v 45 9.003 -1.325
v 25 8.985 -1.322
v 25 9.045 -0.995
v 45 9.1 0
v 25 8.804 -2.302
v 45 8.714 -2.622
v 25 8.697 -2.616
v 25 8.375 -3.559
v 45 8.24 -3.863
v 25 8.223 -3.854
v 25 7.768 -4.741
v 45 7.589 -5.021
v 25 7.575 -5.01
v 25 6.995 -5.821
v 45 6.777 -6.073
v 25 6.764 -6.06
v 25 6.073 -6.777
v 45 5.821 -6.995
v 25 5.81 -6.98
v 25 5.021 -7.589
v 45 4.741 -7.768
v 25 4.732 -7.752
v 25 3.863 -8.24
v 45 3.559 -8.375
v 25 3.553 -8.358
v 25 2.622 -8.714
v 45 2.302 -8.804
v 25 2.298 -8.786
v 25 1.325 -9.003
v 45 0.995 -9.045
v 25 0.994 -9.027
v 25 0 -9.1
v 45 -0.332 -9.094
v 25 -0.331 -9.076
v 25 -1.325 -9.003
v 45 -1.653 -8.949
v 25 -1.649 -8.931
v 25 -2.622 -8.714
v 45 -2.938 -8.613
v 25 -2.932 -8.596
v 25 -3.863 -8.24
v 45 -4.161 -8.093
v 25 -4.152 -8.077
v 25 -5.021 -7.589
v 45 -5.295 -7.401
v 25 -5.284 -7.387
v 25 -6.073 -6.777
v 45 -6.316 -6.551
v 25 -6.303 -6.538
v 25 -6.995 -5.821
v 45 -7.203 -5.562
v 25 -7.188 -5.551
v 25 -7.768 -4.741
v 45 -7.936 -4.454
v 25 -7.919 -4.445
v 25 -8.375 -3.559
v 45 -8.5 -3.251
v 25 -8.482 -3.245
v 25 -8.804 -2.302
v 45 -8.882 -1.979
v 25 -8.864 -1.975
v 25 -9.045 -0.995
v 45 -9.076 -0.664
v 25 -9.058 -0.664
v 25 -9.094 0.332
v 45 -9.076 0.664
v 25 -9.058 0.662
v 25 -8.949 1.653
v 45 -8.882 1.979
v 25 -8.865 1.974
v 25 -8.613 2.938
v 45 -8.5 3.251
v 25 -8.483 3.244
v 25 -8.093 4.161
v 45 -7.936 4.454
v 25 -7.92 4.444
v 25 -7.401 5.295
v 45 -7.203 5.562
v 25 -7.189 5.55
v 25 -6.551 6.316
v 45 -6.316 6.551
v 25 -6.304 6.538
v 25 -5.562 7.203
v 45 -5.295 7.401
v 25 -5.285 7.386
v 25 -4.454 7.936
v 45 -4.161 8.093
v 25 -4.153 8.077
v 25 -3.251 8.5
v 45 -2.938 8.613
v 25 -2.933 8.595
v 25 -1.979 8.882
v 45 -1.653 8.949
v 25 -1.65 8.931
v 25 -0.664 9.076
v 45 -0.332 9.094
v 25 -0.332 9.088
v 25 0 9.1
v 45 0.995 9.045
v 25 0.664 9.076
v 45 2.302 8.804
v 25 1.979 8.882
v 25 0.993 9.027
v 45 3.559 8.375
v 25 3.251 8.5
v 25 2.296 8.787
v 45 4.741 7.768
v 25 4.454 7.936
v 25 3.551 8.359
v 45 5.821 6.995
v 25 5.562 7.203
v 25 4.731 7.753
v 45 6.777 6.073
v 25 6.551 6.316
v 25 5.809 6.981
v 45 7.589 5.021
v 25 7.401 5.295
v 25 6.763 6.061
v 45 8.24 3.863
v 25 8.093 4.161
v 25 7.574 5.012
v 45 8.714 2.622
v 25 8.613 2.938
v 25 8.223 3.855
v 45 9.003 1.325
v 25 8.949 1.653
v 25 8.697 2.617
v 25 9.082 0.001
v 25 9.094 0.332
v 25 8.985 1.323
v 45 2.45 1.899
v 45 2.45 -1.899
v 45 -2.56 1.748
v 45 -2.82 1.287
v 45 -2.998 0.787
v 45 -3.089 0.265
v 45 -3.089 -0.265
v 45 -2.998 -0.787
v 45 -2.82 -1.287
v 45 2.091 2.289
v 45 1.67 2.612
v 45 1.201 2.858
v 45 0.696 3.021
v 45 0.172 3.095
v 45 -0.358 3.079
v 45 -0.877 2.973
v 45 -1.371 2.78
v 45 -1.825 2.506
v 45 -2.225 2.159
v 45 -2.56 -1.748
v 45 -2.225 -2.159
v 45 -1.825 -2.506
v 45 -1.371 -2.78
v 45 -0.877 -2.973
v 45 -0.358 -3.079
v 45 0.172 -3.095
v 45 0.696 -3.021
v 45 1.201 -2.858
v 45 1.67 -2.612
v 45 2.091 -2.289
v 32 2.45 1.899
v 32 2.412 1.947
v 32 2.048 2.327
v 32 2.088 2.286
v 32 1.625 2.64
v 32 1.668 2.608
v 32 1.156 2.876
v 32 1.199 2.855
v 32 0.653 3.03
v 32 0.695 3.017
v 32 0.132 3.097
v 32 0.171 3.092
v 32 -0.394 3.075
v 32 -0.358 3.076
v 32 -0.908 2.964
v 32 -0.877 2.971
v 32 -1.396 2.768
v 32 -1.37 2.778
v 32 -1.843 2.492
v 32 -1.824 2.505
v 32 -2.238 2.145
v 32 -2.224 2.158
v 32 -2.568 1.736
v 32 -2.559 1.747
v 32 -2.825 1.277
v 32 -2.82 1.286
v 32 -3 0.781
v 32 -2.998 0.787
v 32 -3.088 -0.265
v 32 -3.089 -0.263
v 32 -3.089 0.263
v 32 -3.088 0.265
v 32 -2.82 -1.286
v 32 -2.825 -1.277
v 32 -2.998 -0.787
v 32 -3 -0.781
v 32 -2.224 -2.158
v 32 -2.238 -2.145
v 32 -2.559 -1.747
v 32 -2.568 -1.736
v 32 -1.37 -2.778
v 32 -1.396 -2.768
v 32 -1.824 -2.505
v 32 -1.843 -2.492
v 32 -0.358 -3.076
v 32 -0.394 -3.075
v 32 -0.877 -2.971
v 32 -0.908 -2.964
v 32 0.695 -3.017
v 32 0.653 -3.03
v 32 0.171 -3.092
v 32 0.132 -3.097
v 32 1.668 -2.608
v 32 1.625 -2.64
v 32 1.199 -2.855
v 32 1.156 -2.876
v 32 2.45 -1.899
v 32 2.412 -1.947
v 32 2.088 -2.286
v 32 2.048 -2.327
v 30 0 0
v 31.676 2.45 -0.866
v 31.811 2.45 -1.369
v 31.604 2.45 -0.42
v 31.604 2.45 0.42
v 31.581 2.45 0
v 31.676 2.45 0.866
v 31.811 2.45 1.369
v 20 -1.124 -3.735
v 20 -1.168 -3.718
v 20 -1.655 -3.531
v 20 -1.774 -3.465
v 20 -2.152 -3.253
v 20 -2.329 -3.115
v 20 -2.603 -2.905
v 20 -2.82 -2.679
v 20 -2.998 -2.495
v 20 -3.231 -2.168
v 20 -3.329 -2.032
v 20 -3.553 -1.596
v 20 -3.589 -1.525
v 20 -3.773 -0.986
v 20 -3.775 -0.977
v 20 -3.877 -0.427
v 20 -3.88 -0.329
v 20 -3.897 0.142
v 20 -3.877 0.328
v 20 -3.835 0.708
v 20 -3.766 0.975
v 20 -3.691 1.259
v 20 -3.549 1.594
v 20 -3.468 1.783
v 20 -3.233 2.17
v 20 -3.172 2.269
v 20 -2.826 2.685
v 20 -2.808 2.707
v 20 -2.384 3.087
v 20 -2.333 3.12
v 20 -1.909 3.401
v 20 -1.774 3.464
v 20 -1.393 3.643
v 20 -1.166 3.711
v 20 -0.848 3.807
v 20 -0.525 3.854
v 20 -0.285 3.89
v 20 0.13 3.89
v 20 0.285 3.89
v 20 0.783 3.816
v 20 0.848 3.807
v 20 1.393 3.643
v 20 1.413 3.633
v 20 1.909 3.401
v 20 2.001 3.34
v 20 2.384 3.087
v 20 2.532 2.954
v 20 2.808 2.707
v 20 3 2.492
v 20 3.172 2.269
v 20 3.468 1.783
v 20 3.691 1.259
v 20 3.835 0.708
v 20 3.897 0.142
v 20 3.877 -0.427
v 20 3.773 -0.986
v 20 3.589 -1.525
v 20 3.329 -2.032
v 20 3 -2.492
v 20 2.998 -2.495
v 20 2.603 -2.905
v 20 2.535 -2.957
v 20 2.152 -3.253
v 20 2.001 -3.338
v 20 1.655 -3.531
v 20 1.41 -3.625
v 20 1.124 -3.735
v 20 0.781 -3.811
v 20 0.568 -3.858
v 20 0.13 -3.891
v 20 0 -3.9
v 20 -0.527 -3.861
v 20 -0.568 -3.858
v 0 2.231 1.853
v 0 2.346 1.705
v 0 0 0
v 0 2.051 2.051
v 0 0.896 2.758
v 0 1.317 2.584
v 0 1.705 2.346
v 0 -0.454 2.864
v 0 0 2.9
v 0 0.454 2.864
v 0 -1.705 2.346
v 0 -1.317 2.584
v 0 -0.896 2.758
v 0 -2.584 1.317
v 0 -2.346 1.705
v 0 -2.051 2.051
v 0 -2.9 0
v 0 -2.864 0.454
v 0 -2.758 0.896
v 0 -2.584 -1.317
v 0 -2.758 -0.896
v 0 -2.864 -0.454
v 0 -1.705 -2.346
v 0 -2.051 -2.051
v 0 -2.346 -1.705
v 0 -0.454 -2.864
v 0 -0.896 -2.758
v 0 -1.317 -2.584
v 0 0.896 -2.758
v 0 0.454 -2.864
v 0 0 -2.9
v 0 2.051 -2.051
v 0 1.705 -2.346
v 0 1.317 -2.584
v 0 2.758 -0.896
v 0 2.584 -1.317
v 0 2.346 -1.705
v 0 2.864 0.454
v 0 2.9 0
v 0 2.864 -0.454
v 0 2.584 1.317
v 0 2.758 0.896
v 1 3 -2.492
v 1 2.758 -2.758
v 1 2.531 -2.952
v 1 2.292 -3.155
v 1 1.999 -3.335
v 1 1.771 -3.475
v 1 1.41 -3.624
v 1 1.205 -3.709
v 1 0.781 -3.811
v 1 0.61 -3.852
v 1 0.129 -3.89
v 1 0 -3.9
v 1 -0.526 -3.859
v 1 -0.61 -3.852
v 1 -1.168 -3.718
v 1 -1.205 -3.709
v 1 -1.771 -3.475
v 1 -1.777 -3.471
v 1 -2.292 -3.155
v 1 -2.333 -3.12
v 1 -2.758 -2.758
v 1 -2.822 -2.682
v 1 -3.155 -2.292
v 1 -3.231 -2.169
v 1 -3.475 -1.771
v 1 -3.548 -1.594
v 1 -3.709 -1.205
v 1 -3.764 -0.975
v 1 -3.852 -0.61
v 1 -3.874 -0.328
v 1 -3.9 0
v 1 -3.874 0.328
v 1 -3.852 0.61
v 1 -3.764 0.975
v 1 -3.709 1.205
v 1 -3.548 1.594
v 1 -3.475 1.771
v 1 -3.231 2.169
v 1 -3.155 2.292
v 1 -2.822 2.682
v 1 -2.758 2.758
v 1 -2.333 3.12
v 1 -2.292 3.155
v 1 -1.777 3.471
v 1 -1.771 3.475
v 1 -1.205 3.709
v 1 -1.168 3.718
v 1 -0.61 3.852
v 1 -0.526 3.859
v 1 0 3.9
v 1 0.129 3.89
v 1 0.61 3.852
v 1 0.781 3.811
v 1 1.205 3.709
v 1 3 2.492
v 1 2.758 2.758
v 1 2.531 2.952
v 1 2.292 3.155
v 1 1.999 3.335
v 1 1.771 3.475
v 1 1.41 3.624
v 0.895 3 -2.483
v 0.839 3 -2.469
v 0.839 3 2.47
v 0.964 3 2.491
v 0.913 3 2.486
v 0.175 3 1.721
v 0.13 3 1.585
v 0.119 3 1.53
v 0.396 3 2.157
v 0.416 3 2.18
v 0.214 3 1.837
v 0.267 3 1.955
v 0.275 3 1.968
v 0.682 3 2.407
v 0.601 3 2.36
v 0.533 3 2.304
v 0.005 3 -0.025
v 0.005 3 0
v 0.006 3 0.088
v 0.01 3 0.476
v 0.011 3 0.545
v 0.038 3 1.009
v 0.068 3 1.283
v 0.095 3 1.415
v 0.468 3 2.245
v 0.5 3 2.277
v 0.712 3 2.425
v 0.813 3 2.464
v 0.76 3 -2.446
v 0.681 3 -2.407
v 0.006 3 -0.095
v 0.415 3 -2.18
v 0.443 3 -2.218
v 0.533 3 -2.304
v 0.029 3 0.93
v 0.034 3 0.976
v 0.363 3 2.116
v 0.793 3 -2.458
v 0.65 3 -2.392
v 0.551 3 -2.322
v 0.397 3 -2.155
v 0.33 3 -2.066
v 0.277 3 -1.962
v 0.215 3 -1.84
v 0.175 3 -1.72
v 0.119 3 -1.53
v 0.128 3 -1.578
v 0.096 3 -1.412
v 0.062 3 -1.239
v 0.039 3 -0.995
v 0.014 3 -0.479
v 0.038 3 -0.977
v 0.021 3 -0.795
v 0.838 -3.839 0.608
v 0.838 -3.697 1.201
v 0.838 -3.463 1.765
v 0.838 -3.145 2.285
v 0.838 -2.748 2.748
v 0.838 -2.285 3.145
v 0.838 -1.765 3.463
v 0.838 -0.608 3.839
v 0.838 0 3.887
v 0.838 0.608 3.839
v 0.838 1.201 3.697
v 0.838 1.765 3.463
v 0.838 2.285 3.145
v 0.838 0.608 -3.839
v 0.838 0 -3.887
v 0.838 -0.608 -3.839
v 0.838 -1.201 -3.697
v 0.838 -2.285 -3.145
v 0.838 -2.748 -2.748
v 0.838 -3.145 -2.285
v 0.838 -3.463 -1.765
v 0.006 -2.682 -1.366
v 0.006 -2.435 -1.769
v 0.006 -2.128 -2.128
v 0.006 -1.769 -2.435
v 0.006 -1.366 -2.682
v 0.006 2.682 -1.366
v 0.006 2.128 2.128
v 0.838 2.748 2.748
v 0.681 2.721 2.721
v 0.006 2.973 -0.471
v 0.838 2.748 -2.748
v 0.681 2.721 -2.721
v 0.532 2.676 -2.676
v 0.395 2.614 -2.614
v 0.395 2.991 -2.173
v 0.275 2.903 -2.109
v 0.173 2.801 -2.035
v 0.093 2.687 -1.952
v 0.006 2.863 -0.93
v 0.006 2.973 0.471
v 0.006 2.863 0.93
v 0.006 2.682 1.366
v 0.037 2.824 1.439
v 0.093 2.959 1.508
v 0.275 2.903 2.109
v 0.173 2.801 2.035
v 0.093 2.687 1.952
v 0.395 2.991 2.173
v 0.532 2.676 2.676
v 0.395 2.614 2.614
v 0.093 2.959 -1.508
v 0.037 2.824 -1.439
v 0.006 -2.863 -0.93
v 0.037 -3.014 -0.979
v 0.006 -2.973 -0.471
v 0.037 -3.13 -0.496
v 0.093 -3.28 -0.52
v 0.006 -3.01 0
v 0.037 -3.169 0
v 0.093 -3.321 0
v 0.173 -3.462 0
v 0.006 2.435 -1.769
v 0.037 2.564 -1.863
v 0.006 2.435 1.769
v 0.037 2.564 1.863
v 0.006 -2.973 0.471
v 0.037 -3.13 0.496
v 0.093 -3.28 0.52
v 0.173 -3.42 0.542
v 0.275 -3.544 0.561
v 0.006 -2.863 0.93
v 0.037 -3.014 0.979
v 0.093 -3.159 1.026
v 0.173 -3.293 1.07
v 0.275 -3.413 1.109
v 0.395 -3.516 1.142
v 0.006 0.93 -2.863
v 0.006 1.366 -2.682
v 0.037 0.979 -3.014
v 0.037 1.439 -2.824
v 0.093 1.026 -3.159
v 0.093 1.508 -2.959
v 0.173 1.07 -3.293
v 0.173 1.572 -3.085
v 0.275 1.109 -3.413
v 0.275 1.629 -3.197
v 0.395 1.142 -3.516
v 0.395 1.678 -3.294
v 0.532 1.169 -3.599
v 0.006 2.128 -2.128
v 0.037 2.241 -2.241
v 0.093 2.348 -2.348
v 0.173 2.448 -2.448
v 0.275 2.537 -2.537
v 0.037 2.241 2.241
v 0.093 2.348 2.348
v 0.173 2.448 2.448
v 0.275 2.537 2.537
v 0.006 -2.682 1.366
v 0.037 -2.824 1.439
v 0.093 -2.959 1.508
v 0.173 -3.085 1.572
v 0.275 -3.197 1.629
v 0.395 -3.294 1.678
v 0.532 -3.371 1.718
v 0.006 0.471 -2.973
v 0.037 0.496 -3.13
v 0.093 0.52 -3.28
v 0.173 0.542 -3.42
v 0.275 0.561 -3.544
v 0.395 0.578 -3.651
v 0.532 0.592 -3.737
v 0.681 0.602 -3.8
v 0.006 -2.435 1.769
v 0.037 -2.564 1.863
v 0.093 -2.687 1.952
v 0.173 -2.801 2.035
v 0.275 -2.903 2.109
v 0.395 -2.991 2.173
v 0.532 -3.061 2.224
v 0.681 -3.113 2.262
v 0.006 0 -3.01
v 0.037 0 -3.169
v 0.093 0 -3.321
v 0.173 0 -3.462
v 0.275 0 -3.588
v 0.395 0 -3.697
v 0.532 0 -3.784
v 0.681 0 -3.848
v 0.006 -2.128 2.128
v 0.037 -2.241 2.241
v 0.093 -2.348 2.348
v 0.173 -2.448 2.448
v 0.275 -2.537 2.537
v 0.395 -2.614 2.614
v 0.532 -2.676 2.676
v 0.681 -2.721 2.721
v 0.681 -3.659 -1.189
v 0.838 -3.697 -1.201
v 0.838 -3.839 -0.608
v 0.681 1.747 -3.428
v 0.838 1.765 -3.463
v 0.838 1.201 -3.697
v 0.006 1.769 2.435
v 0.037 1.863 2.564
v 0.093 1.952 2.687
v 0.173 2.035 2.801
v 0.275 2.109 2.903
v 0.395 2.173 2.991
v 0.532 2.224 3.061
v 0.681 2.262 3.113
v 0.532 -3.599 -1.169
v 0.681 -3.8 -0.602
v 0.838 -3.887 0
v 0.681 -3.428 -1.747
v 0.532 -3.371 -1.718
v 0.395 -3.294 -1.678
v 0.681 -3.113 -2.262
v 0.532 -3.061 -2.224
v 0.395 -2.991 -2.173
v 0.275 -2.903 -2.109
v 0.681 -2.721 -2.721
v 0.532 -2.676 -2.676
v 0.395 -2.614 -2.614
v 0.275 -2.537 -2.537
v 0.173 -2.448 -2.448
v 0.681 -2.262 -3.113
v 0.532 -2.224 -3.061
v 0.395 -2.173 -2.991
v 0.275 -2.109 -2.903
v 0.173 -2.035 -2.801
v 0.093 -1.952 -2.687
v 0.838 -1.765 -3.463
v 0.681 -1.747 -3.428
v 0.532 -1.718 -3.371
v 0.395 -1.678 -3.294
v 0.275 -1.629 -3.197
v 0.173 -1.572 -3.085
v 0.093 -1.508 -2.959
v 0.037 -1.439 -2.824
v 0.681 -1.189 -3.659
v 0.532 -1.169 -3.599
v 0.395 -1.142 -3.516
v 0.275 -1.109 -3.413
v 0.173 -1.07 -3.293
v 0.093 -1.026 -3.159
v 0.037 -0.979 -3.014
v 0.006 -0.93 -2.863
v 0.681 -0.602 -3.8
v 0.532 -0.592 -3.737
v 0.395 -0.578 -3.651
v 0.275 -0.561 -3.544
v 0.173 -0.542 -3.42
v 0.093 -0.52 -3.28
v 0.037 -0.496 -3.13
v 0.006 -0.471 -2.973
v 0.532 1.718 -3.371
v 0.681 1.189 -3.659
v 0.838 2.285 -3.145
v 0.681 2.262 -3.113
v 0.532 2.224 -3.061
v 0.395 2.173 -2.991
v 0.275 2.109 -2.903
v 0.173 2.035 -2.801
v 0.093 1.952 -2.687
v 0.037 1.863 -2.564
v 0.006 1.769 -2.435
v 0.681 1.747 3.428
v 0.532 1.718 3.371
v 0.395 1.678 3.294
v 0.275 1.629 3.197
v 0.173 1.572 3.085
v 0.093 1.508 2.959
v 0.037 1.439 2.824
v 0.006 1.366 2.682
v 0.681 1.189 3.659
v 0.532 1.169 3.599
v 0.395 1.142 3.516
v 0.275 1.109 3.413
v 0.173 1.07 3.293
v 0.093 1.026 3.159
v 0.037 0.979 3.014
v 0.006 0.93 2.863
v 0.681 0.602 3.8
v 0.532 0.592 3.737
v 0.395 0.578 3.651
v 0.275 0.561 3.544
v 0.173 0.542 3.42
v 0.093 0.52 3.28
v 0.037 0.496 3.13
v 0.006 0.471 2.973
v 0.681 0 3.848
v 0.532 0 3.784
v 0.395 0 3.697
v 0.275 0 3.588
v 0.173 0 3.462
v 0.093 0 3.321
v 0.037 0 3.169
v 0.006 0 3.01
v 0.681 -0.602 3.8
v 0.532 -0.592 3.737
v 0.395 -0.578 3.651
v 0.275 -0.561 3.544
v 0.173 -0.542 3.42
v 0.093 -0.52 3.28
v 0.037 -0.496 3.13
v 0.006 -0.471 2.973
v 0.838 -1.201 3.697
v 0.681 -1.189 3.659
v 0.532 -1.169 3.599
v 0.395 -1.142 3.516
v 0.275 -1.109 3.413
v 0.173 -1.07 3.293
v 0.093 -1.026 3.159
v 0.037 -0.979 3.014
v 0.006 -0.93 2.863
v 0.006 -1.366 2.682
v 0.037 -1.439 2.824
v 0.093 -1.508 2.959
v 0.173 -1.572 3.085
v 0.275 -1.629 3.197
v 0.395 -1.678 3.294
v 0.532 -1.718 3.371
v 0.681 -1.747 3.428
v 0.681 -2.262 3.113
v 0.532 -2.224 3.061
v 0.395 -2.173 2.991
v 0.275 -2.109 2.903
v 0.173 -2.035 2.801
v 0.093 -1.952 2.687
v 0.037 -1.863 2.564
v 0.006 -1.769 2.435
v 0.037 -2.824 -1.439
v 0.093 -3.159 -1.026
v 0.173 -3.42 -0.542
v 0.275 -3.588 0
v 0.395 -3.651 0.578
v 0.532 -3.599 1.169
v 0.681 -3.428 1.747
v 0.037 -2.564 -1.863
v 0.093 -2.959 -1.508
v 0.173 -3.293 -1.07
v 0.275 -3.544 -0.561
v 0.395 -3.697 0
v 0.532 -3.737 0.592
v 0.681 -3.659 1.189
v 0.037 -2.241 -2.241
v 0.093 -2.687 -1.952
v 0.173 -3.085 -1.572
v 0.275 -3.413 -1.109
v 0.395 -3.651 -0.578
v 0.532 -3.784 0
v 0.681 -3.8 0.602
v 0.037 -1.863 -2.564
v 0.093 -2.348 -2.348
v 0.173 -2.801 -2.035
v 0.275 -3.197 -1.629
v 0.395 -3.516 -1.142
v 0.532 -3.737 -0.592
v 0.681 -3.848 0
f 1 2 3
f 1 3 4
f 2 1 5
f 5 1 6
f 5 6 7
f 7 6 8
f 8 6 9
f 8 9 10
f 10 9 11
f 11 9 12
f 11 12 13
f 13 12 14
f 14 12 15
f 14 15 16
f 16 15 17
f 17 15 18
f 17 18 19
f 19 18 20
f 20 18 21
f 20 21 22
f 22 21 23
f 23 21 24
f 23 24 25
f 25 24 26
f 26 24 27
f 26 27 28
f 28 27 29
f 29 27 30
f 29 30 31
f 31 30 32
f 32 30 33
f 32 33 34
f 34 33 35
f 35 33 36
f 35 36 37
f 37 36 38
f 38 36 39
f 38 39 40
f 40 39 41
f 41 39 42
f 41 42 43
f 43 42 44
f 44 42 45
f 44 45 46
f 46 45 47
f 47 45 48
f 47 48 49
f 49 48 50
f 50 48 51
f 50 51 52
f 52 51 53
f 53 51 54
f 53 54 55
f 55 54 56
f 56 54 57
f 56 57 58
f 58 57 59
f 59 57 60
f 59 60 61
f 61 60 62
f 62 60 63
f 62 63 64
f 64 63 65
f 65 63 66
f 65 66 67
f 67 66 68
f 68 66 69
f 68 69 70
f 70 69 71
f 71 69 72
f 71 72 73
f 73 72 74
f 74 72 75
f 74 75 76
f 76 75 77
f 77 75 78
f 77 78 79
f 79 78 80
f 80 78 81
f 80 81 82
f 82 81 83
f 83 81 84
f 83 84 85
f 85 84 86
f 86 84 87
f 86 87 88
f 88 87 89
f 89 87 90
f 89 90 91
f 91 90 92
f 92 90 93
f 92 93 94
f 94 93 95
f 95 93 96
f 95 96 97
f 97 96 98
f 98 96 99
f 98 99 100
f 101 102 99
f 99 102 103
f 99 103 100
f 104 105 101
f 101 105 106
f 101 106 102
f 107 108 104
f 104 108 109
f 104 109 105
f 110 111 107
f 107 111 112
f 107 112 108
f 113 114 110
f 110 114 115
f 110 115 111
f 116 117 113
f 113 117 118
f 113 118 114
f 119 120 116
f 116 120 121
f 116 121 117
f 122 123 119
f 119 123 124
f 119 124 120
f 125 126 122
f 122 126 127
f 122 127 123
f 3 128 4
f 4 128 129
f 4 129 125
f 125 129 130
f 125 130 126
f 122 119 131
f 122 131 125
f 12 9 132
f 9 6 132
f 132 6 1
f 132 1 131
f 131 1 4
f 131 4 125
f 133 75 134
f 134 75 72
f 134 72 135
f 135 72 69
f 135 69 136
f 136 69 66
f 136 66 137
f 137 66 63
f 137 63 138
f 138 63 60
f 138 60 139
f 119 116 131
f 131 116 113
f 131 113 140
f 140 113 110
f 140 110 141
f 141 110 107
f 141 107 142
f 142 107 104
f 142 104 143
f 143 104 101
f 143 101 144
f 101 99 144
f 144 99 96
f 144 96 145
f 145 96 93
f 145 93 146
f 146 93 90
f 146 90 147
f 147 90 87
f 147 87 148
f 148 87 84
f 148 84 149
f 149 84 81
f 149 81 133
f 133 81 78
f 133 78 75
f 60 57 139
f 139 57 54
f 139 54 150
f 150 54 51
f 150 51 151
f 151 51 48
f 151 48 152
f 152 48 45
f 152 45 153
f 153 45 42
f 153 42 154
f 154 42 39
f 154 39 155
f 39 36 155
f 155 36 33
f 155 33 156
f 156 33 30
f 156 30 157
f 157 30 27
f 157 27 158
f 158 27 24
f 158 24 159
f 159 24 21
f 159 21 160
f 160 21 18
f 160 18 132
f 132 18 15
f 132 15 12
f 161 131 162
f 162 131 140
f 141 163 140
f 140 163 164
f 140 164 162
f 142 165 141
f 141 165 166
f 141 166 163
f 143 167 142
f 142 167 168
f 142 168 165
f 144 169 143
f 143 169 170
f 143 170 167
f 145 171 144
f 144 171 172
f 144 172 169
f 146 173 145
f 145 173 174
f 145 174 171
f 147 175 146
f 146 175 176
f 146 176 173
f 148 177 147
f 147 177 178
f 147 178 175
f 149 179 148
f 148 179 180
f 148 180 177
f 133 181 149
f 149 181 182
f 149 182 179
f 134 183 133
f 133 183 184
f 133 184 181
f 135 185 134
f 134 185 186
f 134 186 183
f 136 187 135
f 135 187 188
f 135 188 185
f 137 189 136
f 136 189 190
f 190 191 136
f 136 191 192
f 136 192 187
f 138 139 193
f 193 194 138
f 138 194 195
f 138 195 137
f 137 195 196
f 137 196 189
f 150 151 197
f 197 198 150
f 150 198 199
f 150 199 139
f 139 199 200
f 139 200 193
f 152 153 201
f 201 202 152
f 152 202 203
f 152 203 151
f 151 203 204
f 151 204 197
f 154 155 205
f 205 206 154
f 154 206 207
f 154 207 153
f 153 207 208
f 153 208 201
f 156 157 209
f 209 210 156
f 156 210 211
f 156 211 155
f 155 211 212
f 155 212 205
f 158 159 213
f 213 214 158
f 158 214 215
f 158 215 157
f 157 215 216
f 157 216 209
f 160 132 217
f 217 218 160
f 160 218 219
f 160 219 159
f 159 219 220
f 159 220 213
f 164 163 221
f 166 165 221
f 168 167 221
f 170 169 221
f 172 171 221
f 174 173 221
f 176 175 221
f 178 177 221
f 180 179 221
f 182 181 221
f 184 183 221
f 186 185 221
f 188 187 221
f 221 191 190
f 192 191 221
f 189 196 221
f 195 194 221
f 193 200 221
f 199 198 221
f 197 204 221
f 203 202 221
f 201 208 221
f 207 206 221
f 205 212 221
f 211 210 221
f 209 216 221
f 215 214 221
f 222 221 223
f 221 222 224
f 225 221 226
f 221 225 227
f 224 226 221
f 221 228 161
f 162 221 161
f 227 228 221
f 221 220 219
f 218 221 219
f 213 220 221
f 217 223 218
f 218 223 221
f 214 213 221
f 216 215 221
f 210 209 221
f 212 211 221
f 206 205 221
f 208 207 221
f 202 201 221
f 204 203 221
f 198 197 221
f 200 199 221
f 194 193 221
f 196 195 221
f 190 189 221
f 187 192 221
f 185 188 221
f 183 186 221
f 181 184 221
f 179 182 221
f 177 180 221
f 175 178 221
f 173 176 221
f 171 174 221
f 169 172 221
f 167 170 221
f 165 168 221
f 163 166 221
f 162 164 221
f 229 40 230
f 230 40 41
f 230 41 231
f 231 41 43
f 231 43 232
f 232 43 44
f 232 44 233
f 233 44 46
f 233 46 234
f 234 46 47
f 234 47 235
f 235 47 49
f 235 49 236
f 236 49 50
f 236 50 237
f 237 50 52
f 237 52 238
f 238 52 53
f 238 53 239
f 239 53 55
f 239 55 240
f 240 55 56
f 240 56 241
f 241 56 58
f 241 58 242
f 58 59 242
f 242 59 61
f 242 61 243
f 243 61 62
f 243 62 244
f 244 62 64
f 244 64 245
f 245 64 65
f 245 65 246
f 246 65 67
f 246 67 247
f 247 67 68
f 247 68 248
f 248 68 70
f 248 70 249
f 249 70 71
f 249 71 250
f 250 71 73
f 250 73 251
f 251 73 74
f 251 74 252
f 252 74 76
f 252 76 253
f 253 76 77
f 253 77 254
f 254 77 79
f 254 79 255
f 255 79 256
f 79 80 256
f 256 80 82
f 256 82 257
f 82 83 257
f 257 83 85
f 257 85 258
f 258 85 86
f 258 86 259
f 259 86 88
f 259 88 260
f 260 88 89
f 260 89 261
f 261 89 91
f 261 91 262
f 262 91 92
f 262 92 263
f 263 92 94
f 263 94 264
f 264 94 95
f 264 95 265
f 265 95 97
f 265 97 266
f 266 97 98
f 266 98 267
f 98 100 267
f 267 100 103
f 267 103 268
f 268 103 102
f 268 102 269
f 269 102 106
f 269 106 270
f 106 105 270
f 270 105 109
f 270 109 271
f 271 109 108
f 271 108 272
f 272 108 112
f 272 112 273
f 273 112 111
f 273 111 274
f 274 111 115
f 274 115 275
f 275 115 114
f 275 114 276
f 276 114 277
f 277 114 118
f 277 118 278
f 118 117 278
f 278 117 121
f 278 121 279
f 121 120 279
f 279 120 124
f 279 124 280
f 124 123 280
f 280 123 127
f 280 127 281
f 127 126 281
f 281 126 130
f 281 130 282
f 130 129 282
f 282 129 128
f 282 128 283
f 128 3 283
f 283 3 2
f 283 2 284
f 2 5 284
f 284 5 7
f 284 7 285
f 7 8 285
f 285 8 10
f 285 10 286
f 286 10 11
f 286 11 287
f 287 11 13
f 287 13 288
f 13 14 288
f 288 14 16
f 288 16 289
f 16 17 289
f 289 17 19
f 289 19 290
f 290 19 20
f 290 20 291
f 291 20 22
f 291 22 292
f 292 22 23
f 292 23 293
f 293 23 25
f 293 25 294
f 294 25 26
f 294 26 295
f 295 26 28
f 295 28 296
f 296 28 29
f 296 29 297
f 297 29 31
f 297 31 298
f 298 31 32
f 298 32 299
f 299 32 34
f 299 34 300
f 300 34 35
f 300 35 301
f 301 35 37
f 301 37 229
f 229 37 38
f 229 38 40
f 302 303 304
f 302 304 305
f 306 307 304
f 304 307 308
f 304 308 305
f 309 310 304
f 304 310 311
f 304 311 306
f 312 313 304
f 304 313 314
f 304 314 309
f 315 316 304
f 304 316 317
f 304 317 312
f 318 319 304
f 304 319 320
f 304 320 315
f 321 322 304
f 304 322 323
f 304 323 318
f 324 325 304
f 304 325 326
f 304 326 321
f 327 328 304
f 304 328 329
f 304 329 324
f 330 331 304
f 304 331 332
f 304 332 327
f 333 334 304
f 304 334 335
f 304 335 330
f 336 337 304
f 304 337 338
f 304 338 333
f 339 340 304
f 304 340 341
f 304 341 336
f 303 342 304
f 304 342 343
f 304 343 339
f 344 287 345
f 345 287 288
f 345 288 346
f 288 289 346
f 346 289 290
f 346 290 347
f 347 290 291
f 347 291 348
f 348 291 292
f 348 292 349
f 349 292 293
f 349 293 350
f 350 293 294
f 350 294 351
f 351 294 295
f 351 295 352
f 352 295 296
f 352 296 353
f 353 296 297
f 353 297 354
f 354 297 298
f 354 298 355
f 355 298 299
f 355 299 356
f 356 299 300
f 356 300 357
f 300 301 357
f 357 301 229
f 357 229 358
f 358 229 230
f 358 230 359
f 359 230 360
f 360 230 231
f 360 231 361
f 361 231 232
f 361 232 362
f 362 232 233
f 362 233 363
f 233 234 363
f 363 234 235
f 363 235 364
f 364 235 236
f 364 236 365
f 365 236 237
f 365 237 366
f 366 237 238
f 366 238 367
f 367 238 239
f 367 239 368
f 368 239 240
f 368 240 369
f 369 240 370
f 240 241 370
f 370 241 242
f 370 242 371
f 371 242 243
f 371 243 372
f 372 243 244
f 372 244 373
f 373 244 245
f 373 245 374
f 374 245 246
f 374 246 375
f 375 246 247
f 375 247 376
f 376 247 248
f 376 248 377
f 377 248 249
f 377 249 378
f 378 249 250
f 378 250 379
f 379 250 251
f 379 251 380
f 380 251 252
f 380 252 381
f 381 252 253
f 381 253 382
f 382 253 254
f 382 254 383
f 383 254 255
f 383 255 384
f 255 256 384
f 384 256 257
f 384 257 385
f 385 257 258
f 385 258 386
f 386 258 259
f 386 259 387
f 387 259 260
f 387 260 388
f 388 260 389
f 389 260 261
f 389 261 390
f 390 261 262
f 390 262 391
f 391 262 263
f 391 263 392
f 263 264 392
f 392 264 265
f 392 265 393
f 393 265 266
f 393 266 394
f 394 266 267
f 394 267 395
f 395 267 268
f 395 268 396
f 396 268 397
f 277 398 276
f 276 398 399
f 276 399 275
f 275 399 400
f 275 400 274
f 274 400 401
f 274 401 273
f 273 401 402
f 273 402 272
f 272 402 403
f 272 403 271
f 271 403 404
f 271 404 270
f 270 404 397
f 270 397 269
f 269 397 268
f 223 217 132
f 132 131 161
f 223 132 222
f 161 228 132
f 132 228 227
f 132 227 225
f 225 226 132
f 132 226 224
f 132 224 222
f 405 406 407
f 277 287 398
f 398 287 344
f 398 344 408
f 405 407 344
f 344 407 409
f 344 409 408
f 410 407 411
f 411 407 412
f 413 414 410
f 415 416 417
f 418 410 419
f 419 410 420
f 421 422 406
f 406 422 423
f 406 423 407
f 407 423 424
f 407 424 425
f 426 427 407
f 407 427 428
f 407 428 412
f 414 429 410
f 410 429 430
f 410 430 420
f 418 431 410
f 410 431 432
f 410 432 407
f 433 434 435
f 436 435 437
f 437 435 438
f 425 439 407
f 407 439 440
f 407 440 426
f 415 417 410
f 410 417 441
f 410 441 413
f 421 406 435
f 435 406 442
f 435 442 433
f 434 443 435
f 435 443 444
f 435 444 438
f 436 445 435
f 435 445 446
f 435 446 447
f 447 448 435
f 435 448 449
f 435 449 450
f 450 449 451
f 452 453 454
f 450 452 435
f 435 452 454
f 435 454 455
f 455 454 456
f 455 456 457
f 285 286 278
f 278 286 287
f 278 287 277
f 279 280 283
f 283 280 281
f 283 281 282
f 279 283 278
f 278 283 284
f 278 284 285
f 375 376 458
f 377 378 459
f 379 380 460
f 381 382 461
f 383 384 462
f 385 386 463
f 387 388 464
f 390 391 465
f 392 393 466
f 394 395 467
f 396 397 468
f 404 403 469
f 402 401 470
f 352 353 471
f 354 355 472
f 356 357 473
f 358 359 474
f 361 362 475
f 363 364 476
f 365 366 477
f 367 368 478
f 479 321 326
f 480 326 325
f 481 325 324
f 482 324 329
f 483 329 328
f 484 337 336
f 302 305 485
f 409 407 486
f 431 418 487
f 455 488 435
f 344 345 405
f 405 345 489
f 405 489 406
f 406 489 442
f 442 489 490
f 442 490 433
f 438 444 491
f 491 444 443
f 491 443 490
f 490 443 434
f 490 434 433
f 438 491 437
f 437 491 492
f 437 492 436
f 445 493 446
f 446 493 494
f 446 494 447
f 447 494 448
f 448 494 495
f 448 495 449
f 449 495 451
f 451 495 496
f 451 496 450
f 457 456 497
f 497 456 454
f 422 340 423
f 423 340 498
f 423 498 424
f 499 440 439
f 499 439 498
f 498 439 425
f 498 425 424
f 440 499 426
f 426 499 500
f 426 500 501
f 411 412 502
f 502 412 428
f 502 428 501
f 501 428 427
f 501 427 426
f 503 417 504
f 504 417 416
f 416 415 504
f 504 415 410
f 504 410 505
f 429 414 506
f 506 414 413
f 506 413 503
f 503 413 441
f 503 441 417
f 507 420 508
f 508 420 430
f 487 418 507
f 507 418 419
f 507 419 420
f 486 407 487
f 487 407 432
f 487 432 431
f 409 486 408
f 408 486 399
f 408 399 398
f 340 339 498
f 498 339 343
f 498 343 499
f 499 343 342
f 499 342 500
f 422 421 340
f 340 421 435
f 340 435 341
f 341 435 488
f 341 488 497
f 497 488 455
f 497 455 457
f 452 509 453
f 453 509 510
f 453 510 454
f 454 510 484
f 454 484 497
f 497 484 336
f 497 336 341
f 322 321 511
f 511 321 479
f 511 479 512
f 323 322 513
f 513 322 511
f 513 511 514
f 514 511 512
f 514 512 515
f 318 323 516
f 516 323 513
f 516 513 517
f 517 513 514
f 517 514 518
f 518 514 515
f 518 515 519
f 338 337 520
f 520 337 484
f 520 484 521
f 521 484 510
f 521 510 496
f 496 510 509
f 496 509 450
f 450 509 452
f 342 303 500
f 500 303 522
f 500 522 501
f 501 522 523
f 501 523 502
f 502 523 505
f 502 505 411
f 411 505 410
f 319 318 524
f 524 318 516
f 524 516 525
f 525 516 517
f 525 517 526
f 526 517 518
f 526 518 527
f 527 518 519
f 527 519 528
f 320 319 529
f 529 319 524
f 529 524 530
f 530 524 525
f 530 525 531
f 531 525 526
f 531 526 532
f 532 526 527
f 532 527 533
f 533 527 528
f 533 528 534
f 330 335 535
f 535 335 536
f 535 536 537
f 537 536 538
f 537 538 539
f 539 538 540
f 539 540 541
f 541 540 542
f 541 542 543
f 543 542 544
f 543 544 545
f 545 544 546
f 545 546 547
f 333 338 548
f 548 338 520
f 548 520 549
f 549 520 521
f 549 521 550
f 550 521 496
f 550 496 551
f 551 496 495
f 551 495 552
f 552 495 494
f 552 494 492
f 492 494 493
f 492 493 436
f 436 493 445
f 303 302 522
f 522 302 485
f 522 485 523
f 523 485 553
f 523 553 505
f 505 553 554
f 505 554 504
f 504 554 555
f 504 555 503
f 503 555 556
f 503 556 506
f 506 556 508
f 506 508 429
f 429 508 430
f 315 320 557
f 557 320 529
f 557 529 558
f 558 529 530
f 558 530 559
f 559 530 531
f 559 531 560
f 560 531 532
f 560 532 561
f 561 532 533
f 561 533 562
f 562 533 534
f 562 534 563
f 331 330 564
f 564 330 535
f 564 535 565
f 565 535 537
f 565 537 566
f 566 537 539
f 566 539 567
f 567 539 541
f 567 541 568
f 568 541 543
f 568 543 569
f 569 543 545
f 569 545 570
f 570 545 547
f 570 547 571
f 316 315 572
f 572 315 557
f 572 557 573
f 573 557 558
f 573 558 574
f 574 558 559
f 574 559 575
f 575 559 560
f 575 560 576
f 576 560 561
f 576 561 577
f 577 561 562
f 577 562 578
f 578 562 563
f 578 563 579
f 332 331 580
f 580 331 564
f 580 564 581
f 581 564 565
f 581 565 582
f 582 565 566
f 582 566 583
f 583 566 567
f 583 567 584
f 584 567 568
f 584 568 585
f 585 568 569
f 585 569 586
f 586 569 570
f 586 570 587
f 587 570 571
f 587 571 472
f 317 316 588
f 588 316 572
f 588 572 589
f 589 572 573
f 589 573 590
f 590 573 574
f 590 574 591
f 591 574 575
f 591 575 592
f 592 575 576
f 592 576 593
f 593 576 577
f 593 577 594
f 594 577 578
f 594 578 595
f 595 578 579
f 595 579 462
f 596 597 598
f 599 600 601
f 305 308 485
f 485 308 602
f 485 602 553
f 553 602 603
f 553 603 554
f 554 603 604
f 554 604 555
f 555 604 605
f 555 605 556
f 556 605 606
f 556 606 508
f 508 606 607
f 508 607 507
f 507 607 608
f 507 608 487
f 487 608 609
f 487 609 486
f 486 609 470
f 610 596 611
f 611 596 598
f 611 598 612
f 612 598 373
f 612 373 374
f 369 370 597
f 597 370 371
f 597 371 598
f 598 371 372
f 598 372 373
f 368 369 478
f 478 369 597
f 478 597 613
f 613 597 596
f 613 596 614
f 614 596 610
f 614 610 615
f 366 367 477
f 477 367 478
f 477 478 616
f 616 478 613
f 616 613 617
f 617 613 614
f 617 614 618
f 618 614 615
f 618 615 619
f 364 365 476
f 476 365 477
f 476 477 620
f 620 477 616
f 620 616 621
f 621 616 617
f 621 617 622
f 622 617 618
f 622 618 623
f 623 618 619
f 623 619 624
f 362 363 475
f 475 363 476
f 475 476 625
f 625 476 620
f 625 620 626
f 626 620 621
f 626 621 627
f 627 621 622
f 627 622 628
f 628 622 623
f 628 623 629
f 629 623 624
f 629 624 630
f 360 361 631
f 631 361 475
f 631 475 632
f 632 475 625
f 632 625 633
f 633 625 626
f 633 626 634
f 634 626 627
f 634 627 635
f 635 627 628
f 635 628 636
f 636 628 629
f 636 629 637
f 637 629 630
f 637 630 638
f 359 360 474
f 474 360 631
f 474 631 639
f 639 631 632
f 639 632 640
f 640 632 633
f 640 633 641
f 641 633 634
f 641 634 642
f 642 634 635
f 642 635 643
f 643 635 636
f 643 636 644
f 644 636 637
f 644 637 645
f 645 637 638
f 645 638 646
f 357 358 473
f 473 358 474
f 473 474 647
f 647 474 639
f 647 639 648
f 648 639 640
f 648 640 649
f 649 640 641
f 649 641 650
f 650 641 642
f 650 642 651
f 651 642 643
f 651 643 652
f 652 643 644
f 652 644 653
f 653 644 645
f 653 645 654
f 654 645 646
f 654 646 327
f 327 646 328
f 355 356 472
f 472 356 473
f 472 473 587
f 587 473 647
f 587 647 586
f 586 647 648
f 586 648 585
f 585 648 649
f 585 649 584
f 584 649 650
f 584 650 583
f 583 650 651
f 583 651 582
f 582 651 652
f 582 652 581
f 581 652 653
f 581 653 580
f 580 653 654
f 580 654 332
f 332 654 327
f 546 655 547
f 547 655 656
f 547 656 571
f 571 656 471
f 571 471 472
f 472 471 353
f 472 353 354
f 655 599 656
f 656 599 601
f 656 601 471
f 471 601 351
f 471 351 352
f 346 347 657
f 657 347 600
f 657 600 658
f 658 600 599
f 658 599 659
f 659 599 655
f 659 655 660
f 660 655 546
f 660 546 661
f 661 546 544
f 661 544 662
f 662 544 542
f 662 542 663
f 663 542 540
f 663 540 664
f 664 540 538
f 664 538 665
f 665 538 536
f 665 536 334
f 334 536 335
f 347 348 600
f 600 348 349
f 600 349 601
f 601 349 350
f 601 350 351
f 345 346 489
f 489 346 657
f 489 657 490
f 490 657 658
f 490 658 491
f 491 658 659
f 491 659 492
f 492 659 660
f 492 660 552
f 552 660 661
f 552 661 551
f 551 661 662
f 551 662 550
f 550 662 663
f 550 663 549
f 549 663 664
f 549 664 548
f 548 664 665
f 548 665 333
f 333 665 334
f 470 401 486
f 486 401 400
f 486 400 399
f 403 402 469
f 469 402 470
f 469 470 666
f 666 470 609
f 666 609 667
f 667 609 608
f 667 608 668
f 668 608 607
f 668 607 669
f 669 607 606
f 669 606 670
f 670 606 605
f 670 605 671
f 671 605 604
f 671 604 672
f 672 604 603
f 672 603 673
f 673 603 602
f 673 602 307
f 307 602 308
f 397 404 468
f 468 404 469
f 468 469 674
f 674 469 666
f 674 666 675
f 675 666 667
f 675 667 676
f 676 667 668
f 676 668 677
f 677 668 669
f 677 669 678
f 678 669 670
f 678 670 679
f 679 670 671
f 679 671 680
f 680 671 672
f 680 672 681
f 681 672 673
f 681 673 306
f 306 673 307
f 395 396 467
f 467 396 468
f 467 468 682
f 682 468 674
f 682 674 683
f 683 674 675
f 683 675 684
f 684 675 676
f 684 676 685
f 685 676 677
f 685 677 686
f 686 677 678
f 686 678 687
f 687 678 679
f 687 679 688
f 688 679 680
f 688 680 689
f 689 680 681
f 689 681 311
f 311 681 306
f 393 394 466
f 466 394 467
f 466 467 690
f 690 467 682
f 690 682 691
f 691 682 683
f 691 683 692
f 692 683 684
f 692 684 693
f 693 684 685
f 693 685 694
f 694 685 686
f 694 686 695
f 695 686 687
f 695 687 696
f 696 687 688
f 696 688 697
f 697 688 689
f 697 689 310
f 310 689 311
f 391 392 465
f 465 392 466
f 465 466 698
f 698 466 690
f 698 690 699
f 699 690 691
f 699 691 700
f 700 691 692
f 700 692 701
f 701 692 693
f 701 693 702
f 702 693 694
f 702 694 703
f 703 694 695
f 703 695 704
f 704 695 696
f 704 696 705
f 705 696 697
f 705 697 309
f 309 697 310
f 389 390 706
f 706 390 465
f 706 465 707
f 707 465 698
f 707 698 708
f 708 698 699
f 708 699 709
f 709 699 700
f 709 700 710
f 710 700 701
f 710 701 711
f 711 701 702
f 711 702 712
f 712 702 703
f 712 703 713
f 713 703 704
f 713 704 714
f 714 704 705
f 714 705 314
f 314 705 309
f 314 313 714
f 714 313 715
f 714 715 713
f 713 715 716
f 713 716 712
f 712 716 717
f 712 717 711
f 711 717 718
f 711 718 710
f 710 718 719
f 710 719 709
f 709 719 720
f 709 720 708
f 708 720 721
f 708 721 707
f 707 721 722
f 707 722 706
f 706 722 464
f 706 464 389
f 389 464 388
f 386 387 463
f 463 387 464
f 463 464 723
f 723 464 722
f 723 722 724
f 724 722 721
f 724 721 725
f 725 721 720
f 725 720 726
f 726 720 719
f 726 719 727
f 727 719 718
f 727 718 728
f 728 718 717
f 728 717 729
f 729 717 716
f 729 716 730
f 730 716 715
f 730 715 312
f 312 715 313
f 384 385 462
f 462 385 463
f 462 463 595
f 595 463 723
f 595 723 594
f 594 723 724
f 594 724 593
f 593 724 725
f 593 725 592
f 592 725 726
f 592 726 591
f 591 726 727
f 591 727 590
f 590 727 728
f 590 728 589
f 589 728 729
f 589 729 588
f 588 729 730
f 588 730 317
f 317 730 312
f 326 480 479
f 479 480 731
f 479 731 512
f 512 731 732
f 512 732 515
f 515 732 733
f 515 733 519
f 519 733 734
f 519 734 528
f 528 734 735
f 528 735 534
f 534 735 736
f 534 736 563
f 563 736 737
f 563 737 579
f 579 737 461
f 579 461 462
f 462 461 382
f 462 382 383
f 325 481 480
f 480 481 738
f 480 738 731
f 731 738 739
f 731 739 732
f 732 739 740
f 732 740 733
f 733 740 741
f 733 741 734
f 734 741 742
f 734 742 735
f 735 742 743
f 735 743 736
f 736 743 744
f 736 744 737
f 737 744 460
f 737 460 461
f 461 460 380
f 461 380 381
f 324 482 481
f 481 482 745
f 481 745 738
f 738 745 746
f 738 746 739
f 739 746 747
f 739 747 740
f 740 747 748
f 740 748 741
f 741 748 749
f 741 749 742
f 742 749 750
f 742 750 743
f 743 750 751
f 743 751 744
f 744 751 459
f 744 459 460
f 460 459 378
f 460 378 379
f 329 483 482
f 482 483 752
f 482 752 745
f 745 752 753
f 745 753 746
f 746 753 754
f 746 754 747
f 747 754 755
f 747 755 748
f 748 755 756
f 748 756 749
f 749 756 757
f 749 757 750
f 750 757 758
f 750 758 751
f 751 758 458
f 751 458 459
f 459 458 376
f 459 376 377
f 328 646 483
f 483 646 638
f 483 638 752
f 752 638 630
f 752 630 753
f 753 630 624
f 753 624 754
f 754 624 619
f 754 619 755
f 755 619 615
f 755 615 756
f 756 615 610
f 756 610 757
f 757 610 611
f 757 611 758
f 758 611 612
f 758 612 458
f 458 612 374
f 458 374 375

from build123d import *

# Parameters (mm, degrees)
BOSS_EXTRU_1_START      = -15
BOSS_EXTRU_1_DEPTH      = 15
ENL_V_START             = -20
ENL_V_MAT_EXTRU_1_DEPTH = 20


with BuildPart() as part:
    # Esquisse2 → Révolution1 (revolve)
    with BuildSketch(Plane.XY):
        Polygon((0, 0), (0, 3.9), (25, 3.9), (25, 9.1), (45, 9.1), (45, 3.1), (32, 3.1), (30, 0), align=None)
    revolve(axis=Axis((30, 0, 0), (-1, 0, 0)))

    # Esquisse3 → Révolution2 (revolve)
    with BuildSketch(Plane.XY, mode=Mode.PRIVATE) as r_volution2_sk:
        Polygon((25, 3.9), (20, 3.9), (25, 9.1), align=None)
    revolve(r_volution2_sk.sketch.rotate(Axis((0, 0, 0), (1, 0, 0)), 90), axis=Axis((0, 0, 0), (1, 0, 0)))

    # Esquisse4 → Boss.-Extru.1 (add)
    with BuildSketch(Plane(origin=(45, 0, 0), x_dir=(0, 0, -1), z_dir=(1, 0, 0)).offset(BOSS_EXTRU_1_START)):
        with BuildLine():
            ThreePointArc((1.899341991, 2.45), (0, 3.1), (-1.899341991, 2.45))
            Line((-1.899341991, 2.45), (1.899341991, 2.45))
        make_face()
    extrude(amount=BOSS_EXTRU_1_DEPTH)

    # Esquisse5 → Enlèv. mat.-Extru.1 (cut)
    with BuildSketch(Plane.ZY.offset(ENL_V_START)):
        with BuildLine():
            ThreePointArc((2.491987159, 3), (0, 3.9), (-2.491987159, 3))
            Line((-2.491987159, 3), (2.491987159, 3))
        make_face()
    extrude(amount=ENL_V_MAT_EXTRU_1_DEPTH, mode=Mode.SUBTRACT)

    # Congé2: read off the stored shape, not the designer's step
    # Congé2 outline → Congé2 (revolve, cut)
    with BuildSketch(Plane.YX):
        with BuildLine():
            Line((3.9, 0), (3.9, 1))
            ThreePointArc((3.9, 1), (3.607106781, 0.292893219), (2.9, 0))
            Line((2.9, 0), (3.9, 0))
        make_face()
    revolve(axis=Axis((0, 0, 0), (1, 0, 0)), mode=Mode.SUBTRACT)


solid = part.part
